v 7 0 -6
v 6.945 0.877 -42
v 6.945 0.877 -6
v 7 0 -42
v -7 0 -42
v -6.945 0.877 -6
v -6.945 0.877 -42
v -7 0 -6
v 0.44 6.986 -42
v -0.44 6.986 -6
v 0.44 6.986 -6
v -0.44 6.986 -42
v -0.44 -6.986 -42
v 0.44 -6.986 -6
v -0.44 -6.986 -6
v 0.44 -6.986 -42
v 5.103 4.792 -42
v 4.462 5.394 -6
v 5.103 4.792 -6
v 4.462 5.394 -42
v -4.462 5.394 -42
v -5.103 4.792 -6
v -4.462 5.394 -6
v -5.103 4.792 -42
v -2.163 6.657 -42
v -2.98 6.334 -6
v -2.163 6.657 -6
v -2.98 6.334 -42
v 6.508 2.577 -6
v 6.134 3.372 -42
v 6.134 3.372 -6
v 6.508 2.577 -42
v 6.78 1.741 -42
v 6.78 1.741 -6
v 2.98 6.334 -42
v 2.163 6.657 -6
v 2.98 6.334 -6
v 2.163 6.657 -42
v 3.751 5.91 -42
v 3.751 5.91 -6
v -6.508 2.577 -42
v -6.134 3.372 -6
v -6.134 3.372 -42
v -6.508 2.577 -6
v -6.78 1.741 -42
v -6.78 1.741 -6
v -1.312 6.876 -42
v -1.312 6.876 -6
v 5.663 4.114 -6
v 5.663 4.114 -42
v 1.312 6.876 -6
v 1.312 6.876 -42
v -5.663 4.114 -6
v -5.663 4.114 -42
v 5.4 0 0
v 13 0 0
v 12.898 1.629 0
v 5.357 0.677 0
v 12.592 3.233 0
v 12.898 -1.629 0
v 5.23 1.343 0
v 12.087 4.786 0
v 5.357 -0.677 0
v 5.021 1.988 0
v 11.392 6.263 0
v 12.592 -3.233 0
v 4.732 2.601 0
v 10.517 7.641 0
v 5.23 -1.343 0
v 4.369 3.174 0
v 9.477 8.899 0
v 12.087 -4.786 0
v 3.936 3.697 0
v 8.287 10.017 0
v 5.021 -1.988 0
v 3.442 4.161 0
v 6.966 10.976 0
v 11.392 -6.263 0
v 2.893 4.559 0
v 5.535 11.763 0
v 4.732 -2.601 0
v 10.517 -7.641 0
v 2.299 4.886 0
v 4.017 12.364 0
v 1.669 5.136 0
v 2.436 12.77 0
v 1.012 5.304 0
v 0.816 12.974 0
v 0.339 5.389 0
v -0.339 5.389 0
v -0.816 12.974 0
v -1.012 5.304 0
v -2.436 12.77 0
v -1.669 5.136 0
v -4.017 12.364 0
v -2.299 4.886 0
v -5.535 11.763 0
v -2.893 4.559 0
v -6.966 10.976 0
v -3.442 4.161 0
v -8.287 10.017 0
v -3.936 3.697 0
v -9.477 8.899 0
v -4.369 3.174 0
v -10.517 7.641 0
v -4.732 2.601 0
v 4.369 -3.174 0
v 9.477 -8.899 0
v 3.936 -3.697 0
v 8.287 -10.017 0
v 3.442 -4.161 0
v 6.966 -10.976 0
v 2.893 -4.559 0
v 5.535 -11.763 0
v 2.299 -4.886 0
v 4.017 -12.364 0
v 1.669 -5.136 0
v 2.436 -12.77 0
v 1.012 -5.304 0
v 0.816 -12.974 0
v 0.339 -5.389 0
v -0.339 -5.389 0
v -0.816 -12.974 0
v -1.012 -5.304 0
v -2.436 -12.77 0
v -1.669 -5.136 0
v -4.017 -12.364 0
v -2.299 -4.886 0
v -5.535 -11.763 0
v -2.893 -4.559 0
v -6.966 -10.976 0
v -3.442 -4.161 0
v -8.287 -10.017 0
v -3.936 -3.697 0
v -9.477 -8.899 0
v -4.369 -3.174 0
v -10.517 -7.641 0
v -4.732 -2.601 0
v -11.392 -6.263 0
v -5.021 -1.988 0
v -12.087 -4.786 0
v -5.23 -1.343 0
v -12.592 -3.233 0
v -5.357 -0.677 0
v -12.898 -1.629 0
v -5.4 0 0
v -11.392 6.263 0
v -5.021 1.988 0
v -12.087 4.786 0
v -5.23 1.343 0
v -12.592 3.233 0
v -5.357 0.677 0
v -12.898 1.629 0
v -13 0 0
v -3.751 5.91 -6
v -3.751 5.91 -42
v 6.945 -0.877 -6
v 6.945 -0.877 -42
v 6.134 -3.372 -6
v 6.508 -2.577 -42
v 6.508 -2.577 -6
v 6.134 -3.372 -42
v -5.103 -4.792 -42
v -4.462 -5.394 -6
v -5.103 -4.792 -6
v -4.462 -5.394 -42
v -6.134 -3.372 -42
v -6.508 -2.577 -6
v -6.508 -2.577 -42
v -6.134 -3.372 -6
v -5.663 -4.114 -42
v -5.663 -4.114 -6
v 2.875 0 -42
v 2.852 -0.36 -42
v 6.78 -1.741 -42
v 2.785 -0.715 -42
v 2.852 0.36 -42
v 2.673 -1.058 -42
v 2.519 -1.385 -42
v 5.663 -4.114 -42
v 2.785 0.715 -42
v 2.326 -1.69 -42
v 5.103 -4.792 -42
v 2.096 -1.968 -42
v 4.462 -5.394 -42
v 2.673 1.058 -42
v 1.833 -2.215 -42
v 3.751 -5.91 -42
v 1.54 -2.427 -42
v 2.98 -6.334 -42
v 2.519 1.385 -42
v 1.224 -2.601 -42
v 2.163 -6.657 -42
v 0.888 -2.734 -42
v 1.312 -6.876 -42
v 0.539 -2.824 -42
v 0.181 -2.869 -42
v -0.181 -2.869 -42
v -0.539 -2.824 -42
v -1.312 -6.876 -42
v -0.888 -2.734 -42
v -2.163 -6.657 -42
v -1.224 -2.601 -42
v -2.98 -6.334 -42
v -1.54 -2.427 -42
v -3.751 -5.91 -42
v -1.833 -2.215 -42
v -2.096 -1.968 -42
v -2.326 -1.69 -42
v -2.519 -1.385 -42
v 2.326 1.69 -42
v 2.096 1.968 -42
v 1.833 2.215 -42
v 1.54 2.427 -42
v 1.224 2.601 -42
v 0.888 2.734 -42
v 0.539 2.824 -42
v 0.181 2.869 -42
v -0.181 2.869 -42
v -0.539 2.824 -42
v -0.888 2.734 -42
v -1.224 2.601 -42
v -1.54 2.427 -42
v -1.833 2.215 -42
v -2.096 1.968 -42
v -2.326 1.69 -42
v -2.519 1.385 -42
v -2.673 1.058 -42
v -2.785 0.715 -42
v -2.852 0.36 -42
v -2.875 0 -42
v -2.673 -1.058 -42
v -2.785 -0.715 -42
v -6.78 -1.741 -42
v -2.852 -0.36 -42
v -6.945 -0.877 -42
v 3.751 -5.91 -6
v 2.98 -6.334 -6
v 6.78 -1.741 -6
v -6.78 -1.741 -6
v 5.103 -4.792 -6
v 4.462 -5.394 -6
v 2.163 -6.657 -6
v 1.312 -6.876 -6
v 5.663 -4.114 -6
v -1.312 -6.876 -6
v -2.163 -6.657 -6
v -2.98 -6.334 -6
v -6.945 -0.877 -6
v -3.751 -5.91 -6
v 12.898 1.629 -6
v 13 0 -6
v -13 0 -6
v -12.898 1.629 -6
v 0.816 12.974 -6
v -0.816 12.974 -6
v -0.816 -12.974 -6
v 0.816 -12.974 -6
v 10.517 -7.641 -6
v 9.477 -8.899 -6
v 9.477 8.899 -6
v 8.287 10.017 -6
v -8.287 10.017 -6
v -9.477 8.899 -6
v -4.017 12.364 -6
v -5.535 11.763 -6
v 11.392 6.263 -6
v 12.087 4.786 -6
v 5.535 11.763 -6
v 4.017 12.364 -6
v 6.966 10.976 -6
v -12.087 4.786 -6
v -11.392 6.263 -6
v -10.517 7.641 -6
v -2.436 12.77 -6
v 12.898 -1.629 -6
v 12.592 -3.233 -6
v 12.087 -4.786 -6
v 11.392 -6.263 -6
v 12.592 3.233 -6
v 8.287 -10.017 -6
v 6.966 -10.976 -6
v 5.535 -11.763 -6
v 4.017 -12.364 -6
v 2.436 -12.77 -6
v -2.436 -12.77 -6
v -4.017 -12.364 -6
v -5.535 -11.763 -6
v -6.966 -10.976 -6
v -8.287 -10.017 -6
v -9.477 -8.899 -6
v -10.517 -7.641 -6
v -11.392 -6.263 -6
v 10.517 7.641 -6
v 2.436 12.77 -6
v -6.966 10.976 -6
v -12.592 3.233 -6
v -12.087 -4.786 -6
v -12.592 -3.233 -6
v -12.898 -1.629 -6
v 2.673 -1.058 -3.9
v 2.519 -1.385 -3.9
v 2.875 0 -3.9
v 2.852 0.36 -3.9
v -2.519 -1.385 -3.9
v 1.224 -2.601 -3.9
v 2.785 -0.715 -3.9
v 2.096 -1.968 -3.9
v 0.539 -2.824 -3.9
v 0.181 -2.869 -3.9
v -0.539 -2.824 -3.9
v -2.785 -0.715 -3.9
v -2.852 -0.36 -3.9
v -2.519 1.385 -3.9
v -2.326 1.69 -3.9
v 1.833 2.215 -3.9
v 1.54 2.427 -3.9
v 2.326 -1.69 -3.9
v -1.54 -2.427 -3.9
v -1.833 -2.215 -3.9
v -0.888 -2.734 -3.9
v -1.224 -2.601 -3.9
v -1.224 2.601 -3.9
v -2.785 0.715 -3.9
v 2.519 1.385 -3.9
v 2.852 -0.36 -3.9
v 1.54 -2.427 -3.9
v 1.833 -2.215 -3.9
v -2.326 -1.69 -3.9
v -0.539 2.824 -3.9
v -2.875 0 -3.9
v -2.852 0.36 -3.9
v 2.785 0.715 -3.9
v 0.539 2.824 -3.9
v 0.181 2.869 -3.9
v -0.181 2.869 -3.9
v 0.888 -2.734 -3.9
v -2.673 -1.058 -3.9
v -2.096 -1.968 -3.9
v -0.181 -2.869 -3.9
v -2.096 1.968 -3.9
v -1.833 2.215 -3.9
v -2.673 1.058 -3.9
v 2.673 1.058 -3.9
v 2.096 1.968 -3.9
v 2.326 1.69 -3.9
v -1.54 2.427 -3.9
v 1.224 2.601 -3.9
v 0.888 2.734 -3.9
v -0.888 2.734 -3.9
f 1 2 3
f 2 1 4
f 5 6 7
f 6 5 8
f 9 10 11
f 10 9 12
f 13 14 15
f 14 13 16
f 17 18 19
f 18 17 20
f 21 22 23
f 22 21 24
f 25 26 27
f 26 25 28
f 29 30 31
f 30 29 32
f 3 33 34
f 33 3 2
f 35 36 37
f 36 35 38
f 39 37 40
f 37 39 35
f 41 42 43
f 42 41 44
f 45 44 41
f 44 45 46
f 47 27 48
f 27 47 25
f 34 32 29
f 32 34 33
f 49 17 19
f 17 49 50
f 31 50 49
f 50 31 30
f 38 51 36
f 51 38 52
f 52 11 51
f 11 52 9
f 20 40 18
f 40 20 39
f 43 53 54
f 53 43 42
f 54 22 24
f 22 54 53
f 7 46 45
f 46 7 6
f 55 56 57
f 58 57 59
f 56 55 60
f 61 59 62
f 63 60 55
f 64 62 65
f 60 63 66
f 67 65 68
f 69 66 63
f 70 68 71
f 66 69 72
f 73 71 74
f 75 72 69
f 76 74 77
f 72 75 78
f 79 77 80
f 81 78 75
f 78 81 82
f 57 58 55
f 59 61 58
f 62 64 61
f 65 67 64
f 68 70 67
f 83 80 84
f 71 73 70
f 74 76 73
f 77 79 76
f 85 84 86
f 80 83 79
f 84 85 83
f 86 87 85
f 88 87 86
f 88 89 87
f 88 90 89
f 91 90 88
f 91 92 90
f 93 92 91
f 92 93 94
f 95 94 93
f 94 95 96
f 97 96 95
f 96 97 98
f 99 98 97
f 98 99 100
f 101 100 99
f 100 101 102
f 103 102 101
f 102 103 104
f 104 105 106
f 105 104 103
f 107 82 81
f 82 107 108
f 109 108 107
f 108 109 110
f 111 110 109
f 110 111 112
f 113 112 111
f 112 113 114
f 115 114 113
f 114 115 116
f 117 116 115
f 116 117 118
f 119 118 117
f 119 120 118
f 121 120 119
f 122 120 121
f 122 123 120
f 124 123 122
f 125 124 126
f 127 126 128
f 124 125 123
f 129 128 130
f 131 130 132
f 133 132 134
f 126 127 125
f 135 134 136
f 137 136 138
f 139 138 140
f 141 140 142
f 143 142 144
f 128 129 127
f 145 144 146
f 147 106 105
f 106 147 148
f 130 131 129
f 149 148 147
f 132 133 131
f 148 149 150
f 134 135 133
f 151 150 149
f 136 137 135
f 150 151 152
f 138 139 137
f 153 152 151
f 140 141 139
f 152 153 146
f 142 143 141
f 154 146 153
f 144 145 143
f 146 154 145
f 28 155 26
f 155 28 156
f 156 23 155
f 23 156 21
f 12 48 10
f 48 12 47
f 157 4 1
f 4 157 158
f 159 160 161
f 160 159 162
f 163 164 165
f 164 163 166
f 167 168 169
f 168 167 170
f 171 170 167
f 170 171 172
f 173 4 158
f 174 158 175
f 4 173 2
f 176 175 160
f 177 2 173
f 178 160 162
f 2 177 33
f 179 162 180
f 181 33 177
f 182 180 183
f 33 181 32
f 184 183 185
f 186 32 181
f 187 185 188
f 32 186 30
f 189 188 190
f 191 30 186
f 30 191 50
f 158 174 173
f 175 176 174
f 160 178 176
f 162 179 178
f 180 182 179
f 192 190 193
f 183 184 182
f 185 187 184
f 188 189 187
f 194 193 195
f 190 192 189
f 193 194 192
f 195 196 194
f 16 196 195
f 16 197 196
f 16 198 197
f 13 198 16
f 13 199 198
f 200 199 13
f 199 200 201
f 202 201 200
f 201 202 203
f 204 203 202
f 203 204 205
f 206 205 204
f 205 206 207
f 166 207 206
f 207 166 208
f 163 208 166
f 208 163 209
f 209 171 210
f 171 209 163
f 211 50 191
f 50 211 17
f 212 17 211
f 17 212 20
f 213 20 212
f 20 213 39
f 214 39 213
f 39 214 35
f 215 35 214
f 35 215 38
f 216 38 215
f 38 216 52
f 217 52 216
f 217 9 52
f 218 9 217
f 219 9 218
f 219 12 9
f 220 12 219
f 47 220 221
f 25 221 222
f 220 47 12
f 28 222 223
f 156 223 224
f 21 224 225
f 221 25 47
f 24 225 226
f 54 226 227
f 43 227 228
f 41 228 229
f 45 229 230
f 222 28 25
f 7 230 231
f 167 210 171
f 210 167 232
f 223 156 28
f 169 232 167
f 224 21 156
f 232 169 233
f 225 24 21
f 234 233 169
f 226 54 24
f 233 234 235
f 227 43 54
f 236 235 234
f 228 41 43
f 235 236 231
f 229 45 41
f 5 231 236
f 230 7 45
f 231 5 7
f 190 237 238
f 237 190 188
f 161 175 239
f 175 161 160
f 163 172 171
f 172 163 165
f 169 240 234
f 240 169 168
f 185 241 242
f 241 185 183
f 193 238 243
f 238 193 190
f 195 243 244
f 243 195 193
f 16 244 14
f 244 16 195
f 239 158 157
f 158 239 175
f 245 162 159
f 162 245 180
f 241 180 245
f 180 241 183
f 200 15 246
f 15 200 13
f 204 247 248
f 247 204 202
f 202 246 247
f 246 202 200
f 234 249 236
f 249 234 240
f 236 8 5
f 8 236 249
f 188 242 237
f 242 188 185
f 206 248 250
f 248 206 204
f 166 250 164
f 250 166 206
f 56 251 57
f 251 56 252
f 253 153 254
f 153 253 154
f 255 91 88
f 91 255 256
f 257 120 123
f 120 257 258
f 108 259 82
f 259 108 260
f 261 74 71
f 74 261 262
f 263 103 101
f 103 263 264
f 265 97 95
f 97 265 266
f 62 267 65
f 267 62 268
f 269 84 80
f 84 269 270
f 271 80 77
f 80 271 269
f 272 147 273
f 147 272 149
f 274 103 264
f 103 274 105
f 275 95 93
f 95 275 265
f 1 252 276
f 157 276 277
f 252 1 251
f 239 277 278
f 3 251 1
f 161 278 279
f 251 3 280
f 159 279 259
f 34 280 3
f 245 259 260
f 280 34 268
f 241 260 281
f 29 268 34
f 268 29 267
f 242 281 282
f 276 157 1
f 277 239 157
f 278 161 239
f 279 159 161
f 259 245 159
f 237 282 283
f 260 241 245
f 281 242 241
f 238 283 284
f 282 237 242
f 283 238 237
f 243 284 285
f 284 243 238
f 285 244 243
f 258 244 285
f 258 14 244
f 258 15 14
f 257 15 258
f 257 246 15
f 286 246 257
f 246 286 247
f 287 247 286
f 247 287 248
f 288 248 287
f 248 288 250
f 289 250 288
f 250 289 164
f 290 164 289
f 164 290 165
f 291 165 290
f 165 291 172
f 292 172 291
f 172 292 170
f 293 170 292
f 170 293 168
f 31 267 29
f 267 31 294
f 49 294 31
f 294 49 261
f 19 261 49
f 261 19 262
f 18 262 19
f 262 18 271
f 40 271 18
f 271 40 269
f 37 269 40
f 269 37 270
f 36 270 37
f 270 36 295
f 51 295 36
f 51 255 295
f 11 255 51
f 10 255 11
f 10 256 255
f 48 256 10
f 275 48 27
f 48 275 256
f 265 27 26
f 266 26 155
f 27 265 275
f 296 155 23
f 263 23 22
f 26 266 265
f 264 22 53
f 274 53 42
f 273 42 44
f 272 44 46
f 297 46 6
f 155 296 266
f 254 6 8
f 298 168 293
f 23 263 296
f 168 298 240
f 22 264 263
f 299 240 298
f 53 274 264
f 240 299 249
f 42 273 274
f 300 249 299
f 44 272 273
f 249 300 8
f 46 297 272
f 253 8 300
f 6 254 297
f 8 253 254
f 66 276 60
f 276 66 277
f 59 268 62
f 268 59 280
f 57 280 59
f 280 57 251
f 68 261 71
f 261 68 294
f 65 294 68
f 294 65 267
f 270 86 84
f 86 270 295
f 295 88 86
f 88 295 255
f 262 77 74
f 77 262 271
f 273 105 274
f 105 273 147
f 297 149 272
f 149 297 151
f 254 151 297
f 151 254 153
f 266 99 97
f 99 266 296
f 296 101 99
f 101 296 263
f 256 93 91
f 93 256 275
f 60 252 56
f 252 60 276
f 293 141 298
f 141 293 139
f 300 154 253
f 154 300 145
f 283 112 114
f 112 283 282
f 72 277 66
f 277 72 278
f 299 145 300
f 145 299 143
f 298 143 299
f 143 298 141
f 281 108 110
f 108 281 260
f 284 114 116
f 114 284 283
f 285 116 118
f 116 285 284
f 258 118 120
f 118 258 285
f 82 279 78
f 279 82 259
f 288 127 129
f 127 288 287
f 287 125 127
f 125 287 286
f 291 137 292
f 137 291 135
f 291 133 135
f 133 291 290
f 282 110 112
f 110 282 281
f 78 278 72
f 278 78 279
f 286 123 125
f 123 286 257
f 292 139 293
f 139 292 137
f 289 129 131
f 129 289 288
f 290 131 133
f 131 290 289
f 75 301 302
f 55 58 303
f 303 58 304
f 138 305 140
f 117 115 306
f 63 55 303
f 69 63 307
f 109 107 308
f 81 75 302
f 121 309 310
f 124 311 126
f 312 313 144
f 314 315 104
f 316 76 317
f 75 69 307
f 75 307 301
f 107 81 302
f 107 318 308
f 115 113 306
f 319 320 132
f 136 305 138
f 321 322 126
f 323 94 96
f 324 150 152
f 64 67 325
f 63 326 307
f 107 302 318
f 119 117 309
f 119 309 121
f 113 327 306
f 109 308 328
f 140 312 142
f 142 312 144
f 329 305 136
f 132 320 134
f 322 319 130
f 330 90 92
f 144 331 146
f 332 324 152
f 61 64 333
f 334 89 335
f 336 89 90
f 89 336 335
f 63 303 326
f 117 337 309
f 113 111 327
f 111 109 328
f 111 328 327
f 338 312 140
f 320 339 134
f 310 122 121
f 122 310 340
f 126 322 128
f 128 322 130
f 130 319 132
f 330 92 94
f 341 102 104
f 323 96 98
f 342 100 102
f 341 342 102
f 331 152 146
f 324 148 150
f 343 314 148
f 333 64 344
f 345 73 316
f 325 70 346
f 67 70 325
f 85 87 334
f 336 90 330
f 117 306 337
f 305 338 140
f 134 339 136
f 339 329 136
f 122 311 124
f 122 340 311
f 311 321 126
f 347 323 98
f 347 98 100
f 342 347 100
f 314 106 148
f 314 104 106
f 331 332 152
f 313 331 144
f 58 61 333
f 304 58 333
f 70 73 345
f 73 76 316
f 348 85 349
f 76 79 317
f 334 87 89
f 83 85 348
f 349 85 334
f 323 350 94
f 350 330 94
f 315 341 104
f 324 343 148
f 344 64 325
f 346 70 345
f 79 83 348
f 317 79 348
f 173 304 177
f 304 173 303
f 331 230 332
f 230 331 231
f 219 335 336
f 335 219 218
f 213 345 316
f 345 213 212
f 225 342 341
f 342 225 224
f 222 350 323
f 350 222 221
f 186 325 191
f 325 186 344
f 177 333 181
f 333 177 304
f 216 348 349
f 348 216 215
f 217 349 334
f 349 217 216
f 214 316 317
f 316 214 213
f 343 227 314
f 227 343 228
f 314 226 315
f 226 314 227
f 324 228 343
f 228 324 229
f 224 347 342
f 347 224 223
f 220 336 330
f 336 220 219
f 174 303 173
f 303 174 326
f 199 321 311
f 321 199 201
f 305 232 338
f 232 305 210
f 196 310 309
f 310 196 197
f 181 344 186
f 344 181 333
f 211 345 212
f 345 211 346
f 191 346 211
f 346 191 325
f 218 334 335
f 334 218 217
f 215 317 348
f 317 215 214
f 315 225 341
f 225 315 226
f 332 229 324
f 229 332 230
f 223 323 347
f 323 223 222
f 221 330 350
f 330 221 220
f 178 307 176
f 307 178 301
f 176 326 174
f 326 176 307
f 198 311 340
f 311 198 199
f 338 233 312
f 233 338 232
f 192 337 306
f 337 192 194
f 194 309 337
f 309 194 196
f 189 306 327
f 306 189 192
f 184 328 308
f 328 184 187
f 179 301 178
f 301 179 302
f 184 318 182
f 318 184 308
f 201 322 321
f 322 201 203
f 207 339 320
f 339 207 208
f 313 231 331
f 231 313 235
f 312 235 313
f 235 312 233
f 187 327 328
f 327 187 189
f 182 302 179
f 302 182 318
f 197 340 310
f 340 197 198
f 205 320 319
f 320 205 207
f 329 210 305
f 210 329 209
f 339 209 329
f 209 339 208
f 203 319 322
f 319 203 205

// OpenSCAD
$fn = 50;


difference() {
	union() {
		translate(v = [0, 0, -42.0000000000]) {
			cylinder(h = 42, r = 7.0000000000);
		}
		translate(v = [0, 0, -6.0000000000]) {
			cylinder(h = 6, r = 13.0000000000);
		}
	}
	union() {
		translate(v = [0, 0, 0]) {
			rotate(a = [0, 0, 0]) {
				difference() {
					union() {
						#translate(v = [0, 0, -42.0000000000]) {
							cylinder(h = 42, r = 2.6000000000);
						}
						#translate(v = [0, 0, -3.9000000000]) {
							cylinder(h = 3.9000000000, r = 7.0000000000, r1 = 2.8750000000, r2 = 5.4000000000);
						}
						#translate(v = [0, 0, -42.0000000000]) {
							cylinder(h = 42, r = 2.8750000000);
						}
						#translate(v = [0, 0, -42.0000000000]) {
							cylinder(h = 42, r = 2.6000000000);
						}
					}
					union();
				}
			}
		}
	}
}
